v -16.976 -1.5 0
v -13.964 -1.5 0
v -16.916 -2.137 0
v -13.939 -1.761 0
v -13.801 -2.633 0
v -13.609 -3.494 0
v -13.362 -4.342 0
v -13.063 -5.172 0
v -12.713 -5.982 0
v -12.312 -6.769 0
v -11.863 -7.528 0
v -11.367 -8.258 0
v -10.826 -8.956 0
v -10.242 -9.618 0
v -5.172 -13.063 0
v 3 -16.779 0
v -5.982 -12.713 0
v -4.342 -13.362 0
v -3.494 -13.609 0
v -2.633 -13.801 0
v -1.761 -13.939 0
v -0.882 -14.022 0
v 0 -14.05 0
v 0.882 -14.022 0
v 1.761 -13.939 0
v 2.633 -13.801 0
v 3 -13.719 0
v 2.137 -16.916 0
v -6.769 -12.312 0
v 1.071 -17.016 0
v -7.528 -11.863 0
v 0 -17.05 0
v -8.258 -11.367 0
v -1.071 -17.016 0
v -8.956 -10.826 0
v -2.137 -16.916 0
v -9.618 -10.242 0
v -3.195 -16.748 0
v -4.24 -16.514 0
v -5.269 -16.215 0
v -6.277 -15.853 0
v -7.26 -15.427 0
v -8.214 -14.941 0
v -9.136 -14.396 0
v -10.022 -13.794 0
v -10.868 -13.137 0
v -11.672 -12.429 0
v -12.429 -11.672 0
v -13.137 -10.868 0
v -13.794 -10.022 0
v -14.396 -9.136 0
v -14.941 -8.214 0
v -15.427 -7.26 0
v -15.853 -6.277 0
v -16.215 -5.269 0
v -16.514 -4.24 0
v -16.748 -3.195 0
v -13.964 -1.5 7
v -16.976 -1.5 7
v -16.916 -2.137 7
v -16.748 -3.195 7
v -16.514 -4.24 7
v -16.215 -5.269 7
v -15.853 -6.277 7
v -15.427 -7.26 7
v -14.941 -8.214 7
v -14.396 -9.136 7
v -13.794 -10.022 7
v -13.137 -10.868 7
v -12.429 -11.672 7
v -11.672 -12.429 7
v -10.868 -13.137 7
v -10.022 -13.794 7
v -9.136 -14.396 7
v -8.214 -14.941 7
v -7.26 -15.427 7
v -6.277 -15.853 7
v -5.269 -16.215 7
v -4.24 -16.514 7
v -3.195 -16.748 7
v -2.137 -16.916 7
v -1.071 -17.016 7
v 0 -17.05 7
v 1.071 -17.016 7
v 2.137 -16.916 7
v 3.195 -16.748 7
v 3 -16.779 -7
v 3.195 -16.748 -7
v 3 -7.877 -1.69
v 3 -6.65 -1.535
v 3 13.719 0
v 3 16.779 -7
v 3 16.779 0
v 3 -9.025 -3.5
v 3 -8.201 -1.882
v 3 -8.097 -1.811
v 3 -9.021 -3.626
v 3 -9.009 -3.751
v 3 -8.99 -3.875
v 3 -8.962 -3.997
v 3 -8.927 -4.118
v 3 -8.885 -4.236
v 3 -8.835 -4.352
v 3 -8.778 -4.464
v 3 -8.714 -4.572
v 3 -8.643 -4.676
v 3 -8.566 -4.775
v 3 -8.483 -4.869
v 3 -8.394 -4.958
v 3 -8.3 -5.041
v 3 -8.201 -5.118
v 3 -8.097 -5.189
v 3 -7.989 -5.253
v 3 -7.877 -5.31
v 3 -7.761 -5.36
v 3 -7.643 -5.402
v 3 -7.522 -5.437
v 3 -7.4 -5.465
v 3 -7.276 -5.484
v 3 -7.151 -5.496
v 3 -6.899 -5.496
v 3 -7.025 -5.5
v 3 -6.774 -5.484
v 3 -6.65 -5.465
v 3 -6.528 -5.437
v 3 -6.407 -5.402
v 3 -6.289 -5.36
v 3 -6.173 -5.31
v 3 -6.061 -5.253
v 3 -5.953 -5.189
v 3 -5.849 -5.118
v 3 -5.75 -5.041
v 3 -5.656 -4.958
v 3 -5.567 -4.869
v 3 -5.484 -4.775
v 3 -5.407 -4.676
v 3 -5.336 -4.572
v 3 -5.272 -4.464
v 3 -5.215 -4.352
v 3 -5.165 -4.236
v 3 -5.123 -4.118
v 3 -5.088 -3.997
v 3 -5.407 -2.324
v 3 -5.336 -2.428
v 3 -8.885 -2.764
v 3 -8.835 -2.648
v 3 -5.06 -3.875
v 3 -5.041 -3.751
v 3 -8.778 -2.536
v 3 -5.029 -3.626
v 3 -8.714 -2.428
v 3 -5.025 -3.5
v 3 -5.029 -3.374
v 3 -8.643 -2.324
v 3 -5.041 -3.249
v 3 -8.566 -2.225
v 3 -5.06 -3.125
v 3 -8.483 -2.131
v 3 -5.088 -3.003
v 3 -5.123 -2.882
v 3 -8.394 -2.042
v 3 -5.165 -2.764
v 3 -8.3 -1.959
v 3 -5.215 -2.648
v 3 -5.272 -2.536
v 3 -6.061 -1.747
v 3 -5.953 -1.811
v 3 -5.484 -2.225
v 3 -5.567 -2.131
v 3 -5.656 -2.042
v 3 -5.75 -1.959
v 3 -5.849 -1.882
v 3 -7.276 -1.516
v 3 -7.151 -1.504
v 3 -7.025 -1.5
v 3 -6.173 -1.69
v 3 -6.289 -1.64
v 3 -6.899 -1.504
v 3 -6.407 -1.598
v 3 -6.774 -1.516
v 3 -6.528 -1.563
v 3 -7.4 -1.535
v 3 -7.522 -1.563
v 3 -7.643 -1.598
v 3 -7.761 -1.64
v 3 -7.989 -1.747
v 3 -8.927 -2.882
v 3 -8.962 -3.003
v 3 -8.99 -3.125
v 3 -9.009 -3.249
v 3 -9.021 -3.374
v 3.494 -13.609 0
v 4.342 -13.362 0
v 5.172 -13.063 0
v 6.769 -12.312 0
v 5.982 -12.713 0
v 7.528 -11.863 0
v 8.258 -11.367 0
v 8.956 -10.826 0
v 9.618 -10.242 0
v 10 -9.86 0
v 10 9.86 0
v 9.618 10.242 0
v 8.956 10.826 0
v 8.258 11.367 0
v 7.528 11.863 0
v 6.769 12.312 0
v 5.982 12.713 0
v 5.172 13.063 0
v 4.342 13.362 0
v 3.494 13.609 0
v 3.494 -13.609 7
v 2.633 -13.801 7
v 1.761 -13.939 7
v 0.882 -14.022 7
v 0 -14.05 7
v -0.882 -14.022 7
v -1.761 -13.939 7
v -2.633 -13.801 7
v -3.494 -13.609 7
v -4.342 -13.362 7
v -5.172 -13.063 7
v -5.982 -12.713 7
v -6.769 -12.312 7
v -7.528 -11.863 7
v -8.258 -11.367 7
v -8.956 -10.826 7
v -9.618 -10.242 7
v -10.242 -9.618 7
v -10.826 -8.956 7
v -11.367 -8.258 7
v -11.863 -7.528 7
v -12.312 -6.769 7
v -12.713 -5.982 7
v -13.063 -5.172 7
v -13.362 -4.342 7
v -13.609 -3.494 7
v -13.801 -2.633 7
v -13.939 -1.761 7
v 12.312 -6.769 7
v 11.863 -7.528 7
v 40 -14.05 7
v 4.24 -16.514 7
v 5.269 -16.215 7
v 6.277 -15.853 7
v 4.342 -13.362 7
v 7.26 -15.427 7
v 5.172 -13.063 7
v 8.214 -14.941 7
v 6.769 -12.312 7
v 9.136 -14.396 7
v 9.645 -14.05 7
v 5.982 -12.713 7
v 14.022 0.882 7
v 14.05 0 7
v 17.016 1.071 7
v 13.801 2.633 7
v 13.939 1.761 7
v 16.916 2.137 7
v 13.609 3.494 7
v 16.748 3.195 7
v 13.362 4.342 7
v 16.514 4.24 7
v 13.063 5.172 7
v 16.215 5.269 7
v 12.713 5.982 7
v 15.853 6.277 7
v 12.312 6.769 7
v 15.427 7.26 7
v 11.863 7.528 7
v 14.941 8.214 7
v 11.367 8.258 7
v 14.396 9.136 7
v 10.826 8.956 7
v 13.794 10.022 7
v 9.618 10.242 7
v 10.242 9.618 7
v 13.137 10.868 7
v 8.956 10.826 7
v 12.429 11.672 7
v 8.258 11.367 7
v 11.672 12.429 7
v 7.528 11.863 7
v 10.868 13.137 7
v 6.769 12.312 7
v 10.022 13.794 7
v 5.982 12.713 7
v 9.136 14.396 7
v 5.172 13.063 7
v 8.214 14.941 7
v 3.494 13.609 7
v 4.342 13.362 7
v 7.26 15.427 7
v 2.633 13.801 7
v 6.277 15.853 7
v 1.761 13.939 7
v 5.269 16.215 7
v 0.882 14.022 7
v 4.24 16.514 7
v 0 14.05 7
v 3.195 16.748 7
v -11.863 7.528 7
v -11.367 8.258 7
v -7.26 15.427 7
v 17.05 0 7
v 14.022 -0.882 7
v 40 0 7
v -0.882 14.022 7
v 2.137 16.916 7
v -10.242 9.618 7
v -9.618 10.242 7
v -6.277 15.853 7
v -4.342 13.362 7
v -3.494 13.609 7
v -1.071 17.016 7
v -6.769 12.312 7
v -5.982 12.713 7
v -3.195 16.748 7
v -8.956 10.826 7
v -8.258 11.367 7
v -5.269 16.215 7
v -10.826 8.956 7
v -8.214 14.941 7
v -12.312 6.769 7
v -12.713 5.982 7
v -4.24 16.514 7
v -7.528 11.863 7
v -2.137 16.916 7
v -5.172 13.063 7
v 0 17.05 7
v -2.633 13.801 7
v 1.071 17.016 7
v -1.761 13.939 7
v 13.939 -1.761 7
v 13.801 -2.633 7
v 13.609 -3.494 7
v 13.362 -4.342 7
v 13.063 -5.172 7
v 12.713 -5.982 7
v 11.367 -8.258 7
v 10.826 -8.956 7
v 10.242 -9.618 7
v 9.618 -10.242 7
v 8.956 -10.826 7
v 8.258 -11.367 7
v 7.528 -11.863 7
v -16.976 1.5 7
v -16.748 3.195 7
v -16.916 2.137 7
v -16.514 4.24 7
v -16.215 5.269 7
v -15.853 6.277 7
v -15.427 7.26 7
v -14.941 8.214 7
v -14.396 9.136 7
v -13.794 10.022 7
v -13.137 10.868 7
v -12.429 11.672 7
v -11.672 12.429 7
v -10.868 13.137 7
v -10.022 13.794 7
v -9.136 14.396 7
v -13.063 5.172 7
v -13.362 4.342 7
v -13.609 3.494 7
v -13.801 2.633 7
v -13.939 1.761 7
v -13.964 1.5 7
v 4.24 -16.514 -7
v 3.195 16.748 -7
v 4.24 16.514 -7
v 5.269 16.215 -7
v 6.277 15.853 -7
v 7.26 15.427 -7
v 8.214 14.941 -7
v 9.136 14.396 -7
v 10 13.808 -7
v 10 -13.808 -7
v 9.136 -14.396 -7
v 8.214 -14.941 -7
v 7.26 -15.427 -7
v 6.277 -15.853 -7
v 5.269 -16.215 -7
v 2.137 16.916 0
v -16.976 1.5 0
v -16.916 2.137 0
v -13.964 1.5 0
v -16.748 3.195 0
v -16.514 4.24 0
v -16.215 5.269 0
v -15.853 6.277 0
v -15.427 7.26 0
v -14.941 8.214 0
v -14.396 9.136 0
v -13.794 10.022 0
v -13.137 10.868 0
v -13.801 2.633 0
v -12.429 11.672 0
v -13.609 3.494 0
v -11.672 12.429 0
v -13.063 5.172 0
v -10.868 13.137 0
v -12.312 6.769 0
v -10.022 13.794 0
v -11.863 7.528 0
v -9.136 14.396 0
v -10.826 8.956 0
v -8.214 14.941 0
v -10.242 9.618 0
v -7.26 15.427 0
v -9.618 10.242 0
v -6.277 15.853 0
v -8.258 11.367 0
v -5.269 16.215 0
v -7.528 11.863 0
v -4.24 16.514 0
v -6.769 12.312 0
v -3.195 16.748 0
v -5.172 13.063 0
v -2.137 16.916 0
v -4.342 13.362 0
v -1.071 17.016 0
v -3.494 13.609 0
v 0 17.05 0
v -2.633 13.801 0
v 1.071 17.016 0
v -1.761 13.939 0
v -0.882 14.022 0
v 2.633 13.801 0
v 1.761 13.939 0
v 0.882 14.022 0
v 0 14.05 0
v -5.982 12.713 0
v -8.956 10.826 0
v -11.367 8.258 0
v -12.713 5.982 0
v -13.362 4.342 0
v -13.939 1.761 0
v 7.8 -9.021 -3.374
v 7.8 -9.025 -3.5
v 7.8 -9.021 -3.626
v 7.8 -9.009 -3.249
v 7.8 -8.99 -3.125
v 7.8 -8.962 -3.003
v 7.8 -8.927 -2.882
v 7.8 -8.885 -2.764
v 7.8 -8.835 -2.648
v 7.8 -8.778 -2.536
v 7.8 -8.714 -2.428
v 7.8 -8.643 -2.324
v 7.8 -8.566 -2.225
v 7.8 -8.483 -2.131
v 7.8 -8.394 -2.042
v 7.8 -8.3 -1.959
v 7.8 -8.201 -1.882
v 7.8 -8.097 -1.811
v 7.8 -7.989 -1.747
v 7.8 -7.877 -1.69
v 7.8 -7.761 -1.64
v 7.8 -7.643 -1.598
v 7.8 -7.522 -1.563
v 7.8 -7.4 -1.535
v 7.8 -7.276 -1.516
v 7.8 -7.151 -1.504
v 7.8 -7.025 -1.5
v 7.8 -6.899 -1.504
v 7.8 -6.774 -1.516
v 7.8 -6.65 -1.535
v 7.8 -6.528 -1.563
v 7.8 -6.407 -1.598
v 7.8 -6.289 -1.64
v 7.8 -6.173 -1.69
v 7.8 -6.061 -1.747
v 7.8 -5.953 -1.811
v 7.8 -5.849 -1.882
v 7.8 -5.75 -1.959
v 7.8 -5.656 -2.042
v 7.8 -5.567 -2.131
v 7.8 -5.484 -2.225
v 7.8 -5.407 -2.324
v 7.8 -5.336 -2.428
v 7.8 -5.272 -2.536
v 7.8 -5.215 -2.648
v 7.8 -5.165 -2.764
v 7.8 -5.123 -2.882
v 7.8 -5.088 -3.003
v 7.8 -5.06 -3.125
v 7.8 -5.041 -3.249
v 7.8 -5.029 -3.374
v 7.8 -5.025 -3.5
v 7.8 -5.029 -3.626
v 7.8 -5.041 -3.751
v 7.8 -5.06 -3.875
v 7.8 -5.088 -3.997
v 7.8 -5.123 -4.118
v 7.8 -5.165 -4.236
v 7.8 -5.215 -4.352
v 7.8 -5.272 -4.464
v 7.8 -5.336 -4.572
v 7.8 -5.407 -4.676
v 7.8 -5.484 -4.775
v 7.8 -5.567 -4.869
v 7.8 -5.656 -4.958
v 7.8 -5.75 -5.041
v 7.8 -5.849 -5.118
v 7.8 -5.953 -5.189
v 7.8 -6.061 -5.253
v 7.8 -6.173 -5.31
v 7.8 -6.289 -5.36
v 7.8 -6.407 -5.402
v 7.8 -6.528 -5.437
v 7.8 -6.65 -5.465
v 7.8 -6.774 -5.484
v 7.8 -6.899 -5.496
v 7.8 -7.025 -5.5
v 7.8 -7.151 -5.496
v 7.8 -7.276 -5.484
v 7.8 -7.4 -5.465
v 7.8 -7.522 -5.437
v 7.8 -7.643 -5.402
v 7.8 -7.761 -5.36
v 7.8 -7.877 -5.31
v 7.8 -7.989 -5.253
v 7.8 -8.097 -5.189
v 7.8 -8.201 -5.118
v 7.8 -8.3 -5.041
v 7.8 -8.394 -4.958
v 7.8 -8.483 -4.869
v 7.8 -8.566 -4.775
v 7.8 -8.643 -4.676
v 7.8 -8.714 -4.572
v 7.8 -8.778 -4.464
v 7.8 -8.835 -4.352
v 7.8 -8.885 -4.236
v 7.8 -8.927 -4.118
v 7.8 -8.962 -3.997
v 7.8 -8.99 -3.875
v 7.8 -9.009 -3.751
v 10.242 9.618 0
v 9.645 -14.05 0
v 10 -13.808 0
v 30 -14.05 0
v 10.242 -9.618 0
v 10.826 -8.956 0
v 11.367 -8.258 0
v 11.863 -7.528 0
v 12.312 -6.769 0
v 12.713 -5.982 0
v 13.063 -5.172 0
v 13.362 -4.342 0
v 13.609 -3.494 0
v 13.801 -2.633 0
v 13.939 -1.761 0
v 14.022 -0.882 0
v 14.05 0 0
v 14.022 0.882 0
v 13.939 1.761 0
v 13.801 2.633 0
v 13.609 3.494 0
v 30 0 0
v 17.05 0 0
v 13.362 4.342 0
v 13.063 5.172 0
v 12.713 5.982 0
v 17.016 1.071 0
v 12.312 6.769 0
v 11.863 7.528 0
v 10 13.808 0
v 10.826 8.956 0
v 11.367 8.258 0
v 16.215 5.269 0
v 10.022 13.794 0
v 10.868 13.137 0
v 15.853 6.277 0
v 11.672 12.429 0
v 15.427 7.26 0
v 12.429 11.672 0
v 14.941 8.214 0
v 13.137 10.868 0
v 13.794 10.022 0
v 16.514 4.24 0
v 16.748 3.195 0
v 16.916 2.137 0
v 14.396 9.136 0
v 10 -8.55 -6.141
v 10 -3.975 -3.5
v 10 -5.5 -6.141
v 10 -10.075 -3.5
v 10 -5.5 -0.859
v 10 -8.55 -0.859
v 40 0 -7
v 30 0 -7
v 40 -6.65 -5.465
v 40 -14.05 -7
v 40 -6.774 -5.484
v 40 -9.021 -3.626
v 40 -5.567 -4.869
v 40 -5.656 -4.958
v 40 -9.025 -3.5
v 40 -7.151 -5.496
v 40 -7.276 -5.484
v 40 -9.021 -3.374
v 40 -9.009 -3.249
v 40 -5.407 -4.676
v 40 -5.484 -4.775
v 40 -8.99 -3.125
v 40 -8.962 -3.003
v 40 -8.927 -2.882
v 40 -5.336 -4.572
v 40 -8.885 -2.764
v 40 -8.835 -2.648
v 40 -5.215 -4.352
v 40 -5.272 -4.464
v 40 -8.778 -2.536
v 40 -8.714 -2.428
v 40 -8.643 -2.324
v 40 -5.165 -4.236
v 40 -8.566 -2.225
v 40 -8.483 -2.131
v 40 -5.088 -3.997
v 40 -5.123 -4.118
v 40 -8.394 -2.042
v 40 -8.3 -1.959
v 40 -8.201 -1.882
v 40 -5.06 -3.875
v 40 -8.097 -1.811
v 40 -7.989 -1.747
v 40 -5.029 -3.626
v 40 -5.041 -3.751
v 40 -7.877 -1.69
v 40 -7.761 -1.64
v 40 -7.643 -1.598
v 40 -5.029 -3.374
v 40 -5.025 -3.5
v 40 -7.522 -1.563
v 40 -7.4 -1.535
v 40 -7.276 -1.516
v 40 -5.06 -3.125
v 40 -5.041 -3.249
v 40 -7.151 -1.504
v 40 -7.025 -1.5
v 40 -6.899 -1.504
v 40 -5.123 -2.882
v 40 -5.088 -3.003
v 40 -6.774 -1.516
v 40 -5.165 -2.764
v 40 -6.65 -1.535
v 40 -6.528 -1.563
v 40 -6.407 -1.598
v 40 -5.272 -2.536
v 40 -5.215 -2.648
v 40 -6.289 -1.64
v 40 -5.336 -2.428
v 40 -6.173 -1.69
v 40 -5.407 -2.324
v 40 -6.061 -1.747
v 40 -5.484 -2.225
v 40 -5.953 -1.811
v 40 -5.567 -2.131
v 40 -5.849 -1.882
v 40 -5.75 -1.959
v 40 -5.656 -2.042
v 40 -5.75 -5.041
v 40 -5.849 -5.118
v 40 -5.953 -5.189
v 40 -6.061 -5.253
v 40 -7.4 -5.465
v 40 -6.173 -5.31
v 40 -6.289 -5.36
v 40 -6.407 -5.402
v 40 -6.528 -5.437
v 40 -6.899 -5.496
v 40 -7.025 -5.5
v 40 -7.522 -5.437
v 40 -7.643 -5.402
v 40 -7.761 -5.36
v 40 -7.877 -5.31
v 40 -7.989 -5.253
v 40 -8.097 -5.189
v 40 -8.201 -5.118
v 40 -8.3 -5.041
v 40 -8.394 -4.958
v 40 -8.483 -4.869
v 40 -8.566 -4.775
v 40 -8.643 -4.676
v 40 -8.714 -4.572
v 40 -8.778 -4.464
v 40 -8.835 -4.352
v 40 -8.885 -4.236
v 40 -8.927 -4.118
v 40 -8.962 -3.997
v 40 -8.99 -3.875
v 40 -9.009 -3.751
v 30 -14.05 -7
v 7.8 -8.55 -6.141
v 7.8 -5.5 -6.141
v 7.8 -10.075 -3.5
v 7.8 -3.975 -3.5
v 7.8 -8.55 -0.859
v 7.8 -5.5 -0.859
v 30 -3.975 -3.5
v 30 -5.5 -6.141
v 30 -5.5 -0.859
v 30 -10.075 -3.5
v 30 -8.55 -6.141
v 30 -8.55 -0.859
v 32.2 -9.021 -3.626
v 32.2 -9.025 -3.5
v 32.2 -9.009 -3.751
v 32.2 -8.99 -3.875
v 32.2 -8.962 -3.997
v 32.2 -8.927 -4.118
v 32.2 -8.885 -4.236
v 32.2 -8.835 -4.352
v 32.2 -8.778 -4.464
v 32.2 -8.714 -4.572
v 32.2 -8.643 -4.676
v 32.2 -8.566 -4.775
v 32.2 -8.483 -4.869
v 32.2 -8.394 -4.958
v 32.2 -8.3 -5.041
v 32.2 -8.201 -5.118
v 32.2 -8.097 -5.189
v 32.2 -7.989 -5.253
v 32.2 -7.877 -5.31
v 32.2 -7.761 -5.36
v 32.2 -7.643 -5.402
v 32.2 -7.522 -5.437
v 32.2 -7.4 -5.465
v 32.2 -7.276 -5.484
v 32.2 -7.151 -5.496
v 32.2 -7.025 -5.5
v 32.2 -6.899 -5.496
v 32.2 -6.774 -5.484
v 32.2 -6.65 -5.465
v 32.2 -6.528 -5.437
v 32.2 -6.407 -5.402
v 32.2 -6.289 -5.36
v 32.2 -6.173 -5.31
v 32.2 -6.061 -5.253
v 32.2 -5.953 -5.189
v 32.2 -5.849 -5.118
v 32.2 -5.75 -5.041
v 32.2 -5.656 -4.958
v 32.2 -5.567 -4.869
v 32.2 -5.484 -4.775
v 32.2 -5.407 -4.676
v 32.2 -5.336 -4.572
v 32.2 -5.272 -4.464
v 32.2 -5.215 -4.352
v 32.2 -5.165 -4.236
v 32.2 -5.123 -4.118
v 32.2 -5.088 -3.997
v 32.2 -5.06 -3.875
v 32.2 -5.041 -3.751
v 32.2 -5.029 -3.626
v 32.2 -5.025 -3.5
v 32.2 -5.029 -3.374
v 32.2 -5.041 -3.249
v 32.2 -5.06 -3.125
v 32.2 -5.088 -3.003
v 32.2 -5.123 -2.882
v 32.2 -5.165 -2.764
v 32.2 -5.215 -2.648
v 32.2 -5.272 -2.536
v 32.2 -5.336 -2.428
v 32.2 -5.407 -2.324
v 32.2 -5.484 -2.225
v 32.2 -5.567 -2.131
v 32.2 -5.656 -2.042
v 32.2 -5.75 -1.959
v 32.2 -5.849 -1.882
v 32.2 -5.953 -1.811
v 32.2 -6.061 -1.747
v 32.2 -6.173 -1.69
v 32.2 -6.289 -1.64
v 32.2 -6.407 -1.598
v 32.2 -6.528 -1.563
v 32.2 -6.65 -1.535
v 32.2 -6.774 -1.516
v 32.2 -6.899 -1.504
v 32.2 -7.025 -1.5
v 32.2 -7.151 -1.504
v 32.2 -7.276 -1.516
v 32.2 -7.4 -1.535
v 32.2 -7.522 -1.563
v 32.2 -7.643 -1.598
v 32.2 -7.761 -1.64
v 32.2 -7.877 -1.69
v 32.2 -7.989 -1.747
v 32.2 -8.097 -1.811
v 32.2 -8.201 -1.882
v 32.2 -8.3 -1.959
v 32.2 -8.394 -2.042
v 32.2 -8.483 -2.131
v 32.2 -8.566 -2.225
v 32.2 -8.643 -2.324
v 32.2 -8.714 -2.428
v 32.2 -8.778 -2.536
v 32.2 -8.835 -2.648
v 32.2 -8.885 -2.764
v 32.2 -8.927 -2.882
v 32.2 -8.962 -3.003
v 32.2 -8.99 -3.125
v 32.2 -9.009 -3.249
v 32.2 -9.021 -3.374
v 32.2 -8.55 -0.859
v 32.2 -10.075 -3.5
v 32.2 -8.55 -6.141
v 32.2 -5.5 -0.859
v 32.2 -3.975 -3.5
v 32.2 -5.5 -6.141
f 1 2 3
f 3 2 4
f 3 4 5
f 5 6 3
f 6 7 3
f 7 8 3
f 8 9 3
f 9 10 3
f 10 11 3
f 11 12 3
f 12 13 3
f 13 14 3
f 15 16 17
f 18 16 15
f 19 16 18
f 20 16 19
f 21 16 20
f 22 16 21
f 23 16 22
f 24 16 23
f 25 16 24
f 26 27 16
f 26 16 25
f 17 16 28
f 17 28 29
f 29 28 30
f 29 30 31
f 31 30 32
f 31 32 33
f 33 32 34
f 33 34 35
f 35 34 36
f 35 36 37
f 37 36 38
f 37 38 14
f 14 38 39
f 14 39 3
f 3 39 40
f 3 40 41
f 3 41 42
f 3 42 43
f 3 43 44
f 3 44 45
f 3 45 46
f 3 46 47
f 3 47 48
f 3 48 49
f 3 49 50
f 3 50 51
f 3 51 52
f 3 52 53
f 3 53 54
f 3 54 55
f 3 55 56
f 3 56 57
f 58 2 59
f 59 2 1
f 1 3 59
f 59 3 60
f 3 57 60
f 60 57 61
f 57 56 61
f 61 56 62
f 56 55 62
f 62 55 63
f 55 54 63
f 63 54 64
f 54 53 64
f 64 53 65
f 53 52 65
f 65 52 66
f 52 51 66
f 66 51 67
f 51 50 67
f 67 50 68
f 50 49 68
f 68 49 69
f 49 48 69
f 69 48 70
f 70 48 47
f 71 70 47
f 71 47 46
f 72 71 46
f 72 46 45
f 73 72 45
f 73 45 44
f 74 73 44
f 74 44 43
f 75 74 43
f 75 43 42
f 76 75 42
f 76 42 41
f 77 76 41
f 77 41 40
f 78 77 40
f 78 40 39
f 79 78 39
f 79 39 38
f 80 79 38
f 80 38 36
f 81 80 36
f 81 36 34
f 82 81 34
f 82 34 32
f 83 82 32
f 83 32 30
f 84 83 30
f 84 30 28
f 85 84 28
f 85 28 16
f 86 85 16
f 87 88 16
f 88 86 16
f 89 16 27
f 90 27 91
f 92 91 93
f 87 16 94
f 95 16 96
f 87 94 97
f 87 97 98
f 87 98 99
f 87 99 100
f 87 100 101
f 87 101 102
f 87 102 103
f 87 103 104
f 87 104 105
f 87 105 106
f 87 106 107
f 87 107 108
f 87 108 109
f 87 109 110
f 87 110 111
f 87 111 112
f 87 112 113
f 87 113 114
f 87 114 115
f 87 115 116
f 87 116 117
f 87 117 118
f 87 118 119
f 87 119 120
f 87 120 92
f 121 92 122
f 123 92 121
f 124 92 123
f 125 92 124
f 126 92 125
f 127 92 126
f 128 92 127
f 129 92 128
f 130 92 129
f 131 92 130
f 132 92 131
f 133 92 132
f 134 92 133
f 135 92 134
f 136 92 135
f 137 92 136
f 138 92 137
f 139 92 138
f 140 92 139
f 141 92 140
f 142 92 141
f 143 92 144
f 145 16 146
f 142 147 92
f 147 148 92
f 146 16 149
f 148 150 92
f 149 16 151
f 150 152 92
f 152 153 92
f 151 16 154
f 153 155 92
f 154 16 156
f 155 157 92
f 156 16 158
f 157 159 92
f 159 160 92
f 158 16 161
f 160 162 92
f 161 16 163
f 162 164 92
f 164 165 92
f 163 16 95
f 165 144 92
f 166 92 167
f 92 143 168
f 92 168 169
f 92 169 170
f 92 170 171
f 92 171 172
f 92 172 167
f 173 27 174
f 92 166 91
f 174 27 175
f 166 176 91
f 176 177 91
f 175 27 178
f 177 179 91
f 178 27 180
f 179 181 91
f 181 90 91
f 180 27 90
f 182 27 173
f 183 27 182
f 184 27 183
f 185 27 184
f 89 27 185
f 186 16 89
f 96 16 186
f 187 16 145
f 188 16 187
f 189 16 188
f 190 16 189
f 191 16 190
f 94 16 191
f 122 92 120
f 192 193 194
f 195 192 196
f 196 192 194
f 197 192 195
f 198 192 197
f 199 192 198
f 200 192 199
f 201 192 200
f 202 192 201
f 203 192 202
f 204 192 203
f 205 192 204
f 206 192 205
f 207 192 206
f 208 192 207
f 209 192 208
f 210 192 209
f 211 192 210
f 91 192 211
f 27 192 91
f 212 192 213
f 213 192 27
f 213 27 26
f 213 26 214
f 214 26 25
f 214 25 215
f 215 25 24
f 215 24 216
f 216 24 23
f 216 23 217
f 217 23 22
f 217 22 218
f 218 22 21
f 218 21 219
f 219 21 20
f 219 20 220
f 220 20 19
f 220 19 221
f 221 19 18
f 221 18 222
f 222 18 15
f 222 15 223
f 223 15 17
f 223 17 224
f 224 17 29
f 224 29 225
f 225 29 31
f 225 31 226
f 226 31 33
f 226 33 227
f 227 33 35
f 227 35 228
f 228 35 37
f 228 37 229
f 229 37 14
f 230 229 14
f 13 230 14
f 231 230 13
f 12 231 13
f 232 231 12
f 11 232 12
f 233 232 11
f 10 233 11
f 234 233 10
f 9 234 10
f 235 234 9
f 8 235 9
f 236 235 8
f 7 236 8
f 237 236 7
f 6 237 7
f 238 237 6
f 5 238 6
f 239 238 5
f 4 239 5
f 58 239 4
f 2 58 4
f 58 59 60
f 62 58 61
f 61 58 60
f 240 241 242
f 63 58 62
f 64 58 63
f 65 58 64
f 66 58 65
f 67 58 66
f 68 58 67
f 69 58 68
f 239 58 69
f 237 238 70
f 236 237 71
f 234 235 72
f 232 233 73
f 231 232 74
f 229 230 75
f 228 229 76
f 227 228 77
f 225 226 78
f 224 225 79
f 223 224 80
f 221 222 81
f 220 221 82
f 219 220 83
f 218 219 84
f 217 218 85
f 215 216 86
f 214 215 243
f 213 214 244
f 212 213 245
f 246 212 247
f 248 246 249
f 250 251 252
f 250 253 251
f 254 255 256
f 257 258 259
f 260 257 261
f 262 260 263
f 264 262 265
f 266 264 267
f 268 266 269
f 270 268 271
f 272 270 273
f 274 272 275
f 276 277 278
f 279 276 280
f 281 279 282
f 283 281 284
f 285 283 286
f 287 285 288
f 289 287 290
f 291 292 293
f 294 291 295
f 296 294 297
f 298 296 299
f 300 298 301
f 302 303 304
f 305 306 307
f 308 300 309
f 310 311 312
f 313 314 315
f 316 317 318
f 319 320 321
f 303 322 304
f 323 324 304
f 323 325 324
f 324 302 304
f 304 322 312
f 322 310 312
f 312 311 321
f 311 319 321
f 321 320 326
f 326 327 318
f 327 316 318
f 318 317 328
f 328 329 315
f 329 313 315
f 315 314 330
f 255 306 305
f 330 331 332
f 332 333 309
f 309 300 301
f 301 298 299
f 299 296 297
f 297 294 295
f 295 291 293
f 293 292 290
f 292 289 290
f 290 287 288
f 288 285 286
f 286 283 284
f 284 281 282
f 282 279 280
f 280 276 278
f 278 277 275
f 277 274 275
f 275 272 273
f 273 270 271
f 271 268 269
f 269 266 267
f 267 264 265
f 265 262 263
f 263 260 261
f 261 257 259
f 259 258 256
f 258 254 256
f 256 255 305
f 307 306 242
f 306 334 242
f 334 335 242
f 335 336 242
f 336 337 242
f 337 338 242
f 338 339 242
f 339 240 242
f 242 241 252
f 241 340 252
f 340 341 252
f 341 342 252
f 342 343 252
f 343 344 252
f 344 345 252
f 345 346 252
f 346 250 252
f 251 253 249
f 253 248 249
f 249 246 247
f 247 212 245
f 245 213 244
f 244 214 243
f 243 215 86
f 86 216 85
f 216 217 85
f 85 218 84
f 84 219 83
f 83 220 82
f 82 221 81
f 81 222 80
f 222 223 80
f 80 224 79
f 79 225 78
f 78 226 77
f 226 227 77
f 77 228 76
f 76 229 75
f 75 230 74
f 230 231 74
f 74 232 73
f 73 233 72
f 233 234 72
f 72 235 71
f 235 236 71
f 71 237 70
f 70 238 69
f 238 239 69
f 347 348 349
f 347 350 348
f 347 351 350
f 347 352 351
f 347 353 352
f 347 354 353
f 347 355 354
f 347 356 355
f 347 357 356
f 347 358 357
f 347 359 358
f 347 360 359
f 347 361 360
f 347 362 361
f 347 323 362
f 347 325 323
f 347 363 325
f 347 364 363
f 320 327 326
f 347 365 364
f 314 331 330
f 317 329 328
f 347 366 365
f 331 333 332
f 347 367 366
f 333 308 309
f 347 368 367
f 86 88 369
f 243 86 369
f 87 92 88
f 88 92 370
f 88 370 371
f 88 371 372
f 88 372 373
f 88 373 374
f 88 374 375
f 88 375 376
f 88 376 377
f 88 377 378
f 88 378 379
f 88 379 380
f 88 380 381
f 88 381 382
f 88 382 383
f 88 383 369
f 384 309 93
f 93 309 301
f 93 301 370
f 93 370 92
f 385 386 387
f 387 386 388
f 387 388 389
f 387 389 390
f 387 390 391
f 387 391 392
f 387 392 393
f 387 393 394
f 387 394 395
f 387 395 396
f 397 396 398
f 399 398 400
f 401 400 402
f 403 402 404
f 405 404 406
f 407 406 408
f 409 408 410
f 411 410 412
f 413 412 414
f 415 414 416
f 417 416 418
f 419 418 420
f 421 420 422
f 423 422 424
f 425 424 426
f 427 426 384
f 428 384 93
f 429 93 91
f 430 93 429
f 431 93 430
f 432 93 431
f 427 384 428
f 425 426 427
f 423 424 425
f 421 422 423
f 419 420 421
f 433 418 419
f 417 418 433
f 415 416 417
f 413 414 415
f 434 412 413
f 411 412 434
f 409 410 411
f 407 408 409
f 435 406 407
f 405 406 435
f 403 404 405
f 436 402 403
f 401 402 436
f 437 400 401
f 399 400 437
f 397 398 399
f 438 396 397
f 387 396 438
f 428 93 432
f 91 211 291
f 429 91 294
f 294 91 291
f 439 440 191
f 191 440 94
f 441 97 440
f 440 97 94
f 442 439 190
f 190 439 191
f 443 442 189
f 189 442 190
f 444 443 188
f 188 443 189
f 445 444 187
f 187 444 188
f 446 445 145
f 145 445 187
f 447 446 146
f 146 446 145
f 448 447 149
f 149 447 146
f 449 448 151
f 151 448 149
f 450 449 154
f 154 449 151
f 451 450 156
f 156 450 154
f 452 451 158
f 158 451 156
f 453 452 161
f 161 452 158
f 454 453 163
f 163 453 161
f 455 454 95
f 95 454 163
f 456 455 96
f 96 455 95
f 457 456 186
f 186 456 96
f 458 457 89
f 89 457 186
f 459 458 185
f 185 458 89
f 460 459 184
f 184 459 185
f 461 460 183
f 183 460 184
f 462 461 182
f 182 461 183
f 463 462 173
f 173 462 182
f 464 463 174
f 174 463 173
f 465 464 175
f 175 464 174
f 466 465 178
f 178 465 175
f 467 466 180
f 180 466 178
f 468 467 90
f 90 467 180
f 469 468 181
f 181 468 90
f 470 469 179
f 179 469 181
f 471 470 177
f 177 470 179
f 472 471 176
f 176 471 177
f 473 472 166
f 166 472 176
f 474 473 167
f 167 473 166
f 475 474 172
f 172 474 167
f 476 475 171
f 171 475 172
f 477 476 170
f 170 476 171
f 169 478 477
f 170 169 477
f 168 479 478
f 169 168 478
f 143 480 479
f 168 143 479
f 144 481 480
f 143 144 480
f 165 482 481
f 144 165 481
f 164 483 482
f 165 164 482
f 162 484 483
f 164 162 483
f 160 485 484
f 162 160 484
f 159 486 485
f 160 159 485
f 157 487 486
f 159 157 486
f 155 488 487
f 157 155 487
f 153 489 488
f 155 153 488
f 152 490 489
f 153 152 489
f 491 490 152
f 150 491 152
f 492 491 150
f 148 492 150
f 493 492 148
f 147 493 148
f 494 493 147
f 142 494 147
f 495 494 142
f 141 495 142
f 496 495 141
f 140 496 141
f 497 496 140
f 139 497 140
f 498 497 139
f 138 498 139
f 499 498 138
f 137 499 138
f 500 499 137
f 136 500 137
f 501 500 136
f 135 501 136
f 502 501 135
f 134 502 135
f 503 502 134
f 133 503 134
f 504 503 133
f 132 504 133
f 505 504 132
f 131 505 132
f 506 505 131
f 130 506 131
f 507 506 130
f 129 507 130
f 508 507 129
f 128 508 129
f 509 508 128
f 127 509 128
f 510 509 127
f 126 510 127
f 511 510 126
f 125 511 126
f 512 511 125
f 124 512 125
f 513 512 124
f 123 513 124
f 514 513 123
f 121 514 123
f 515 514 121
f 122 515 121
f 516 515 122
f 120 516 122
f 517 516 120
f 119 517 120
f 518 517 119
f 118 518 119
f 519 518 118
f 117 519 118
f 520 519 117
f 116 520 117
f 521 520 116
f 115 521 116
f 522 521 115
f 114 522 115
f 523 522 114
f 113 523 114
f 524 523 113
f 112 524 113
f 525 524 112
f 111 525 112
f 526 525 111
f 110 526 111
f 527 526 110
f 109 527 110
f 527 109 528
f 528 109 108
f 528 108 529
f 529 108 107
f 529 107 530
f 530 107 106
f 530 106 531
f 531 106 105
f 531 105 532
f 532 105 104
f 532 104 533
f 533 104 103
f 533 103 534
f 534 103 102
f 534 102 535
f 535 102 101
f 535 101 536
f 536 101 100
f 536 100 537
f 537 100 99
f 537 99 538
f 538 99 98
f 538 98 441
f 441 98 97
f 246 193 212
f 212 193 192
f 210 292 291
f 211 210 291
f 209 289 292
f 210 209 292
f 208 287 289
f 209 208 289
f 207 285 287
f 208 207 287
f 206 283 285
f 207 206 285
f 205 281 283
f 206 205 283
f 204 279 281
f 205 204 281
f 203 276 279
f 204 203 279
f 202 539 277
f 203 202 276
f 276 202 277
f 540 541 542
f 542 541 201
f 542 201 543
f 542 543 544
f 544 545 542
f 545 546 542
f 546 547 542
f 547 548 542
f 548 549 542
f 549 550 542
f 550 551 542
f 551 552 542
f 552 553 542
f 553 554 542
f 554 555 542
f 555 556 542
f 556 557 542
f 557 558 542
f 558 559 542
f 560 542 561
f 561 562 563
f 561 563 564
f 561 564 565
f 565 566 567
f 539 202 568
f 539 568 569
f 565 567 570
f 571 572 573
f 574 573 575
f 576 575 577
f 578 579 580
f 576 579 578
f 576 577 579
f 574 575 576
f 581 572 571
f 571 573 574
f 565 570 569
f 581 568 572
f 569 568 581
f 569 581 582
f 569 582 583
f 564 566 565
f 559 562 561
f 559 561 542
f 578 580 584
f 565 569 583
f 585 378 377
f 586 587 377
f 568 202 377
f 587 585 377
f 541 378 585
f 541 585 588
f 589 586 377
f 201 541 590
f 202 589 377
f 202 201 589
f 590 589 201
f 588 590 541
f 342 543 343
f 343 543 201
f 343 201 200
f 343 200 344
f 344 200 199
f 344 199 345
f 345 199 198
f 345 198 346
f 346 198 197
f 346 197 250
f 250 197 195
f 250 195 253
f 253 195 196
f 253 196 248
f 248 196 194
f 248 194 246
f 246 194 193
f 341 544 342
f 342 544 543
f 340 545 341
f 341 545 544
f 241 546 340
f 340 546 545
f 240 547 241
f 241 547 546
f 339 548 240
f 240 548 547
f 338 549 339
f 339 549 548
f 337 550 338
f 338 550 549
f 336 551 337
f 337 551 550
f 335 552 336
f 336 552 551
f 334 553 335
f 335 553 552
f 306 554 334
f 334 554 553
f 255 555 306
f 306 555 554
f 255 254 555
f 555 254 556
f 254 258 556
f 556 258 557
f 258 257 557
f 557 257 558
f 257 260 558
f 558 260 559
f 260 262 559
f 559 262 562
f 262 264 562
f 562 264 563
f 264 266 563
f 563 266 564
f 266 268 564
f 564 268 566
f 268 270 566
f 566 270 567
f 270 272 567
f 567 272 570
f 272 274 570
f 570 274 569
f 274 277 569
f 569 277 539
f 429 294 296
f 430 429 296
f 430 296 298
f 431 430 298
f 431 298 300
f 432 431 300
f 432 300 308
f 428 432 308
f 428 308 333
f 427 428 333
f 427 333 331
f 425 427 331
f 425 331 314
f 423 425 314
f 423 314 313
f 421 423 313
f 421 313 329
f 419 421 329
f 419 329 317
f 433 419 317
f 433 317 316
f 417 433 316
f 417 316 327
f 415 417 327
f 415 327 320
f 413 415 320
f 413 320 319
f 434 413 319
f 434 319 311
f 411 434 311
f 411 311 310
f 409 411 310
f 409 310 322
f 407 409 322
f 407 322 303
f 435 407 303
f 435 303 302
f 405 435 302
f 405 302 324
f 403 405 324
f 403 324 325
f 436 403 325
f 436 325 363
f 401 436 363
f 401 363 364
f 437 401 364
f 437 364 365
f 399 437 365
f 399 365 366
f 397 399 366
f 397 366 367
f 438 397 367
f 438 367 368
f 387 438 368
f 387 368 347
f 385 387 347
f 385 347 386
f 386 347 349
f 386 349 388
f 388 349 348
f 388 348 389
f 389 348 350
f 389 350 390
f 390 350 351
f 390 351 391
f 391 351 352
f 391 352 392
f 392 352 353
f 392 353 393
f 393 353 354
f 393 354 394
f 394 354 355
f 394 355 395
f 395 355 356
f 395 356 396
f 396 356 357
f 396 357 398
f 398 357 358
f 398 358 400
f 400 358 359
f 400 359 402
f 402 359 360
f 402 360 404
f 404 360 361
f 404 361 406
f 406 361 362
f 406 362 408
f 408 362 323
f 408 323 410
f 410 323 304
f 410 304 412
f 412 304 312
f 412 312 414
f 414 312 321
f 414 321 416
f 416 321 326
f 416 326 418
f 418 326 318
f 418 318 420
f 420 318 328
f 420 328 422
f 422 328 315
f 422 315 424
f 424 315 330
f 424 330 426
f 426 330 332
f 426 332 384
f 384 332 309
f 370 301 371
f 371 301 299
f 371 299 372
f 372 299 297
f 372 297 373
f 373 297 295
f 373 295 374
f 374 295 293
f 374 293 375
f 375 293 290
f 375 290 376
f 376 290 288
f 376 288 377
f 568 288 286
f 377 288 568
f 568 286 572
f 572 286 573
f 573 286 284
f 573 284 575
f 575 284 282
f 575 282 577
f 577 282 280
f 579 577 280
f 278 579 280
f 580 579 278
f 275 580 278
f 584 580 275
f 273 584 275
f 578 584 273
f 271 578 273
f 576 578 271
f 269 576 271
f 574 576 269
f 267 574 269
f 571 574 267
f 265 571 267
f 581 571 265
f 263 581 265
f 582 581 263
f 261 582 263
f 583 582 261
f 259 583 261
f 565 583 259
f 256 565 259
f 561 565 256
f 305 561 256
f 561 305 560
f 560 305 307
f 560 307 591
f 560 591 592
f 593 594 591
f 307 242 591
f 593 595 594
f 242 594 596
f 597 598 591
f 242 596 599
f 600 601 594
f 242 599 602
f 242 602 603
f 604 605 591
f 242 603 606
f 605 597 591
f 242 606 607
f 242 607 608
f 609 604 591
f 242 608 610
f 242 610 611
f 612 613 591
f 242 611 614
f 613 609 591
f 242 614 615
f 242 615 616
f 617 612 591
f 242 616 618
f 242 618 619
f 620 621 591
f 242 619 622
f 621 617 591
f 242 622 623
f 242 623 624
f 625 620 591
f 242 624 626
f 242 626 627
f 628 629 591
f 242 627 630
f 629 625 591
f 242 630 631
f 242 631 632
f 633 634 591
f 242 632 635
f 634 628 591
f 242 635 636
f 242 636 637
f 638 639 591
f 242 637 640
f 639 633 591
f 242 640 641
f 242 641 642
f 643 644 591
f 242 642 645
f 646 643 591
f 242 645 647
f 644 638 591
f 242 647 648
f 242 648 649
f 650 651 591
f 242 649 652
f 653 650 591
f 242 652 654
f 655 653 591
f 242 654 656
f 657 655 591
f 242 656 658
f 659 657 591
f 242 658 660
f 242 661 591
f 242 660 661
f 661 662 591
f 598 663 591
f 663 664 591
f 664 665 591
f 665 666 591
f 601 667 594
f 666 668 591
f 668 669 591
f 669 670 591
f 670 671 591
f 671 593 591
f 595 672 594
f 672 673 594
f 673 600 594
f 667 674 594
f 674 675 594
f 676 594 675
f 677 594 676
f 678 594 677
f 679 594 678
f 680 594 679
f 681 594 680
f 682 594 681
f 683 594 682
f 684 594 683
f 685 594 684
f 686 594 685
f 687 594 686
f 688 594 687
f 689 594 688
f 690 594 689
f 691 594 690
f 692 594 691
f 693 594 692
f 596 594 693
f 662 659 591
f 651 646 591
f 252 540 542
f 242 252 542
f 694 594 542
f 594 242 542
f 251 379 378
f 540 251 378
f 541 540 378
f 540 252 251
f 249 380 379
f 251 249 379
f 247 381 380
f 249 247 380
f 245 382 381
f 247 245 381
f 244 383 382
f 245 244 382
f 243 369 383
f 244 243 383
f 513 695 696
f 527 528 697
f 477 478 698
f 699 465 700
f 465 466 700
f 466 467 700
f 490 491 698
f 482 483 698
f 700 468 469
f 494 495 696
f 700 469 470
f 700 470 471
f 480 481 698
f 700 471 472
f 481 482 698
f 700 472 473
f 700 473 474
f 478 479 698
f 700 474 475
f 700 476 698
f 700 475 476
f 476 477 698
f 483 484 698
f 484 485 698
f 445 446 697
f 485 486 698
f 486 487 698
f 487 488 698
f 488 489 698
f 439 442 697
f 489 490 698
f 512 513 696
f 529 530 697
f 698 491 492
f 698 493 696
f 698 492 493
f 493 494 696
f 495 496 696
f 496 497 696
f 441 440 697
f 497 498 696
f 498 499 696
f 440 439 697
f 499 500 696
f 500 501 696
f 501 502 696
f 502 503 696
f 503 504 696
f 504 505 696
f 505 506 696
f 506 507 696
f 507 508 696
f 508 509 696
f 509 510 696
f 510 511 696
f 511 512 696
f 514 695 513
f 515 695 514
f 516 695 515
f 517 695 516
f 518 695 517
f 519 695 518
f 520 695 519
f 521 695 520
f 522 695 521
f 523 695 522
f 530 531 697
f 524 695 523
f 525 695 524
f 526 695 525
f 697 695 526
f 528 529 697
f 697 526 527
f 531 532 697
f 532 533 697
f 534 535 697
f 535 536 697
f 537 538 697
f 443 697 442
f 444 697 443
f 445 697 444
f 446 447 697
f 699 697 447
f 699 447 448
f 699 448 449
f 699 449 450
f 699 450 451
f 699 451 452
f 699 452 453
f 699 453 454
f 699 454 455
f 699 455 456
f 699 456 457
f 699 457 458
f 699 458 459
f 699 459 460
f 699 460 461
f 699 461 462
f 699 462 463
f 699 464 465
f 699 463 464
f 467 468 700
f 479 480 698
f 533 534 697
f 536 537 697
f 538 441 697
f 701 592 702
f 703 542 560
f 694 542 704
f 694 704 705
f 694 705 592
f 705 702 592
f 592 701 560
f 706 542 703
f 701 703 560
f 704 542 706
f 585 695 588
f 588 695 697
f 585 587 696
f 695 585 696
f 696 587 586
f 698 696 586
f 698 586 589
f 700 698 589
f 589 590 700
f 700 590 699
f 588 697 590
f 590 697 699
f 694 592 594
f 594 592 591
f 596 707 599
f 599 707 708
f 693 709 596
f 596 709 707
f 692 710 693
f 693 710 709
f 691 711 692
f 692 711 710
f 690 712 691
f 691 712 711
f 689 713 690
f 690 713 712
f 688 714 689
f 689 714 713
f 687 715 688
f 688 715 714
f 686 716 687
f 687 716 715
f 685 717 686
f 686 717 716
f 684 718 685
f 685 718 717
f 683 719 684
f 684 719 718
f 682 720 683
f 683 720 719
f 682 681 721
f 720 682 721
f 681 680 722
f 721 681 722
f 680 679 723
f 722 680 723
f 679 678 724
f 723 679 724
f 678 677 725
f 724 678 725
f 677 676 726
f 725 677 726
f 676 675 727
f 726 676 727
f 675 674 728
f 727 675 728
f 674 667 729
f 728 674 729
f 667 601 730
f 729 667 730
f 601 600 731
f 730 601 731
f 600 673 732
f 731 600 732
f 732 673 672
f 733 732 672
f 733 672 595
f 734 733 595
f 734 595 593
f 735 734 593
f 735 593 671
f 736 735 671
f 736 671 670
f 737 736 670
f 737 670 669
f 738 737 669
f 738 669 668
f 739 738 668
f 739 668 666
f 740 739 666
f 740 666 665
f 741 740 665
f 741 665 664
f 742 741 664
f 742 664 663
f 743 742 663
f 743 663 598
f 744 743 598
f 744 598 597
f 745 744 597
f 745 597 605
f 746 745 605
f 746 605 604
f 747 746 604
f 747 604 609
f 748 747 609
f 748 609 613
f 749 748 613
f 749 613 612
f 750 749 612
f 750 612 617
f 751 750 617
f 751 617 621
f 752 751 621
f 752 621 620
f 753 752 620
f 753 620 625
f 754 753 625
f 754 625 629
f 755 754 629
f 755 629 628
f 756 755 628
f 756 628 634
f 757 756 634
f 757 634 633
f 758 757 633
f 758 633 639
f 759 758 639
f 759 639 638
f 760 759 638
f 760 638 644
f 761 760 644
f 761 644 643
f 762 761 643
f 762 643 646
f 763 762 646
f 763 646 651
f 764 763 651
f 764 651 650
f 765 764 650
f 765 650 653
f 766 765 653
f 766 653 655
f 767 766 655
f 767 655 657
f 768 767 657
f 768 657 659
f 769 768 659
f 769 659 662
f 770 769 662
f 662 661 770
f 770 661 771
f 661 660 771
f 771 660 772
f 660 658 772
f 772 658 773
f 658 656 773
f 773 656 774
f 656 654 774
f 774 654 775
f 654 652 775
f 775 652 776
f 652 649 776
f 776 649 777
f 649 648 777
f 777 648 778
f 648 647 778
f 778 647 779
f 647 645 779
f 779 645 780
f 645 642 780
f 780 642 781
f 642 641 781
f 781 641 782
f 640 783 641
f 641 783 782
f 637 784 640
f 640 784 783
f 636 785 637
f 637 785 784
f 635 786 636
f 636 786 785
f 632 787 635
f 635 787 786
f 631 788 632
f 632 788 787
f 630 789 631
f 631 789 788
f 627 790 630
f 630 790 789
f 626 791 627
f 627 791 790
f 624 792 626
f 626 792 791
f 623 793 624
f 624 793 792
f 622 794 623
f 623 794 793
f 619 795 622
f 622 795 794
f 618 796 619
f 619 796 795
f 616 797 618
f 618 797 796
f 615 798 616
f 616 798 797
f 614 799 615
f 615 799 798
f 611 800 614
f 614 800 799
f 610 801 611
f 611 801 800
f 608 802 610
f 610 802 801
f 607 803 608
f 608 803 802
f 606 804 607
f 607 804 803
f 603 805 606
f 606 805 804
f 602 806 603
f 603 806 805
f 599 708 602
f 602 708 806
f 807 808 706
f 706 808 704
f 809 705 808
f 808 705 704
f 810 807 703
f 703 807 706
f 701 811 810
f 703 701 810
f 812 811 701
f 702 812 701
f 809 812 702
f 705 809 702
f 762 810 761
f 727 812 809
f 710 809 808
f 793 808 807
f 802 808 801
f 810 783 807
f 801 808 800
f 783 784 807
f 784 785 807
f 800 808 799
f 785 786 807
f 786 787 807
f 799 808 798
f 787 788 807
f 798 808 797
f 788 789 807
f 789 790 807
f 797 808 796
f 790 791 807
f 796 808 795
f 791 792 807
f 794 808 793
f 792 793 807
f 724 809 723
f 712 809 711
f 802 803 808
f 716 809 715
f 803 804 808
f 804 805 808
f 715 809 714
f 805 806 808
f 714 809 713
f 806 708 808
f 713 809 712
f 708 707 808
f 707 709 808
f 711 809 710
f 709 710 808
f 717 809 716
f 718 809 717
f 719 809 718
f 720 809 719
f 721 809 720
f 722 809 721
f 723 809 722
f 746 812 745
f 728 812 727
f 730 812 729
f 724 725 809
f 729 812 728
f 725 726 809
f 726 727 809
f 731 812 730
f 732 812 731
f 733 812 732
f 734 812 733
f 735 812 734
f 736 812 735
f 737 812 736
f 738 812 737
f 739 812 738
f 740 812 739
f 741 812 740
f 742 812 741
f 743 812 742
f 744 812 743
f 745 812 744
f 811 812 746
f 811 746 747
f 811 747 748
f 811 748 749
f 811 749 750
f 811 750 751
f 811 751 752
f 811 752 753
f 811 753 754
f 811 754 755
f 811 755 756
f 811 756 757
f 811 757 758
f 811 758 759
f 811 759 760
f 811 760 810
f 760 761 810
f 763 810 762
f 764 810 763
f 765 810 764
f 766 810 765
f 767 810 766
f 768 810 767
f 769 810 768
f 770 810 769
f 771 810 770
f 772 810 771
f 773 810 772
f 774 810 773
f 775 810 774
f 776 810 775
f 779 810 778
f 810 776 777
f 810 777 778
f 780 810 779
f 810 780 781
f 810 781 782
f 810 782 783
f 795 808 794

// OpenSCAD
bearing_radius = 28.1 / 2;
bearing_height = 7;
wall_thickness = 3;

difference(){
	union() {
		// Bearing support wall
		cylinder( r = bearing_radius + wall_thickness, h = bearing_height, $fn = 100 );

		// Outer side fixture support:
		translate( [ 0, -bearing_radius, 0 ] )
			cube( [ 40, bearing_radius, bearing_height ] );
		translate( [ 30, - bearing_radius, - bearing_height ] )
			cube( [ 10, bearing_radius, bearing_height ] );
	}
	// Bearing support hole
	translate( [ 0, 0, -0.1 ] )
		cylinder( r = bearing_radius, h = bearing_height + 0.2, $fn = 100 );

	// Captive nut hole:
	translate( [ 30 - 0.1, - bearing_radius / 2, -bearing_height / 2 ] )
		rotate( 90, [ 0, 1, 0 ] )
			rotate( 90, [ 0, 0, 1 ] )
				cylinder( h = 2.3, r = 6.1 / 2, $fn=6 );
	// Screw hole:
	translate( [ 30 - 2.2, - bearing_radius / 2, -bearing_height / 2 ] )
		rotate( 90, [ 0, 1, 0 ] )
			cylinder( h = 31, r = 2, $fn=100 );

	// Groove for easier bearing fit:
	translate( [ -( bearing_radius + wall_thickness ), - wall_thickness / 2, -0.1 ] )
	cube( [ wall_thickness + 0.1, wall_thickness, bearing_height + 0.2 ] );

}
difference(){
	// Inner side fixture support:
	translate( [ 3, - ( bearing_radius + wall_thickness ), - bearing_height ] )
		cube( [ 7, ( bearing_radius + wall_thickness ) * 2, bearing_height ] );

	// Captive nut hole:
	translate( [ 10 - 2.2, - bearing_radius / 2, -bearing_height / 2 ] )
		rotate( 90, [ 0, 1, 0 ] )
			rotate( 90, [ 0, 0, 1 ] )
				cylinder( h = 2.3, r = 6.1 / 2, $fn=6 );

	// Screw hole:
	translate( [ 4 - 2.2, - bearing_radius / 2, -bearing_height / 2 ] )
		rotate( 90, [ 0, 1, 0 ] )
			cylinder( h = 11, r = 2, $fn=100 );

	// Round rough edges:
	translate( [ 0, 0, -30 ] )
		difference(){
			cylinder( h = 30, r = 100, $fn = 100 );
			cylinder( h = 30, r = bearing_radius + wall_thickness, $fn = 100 );
		}
}
